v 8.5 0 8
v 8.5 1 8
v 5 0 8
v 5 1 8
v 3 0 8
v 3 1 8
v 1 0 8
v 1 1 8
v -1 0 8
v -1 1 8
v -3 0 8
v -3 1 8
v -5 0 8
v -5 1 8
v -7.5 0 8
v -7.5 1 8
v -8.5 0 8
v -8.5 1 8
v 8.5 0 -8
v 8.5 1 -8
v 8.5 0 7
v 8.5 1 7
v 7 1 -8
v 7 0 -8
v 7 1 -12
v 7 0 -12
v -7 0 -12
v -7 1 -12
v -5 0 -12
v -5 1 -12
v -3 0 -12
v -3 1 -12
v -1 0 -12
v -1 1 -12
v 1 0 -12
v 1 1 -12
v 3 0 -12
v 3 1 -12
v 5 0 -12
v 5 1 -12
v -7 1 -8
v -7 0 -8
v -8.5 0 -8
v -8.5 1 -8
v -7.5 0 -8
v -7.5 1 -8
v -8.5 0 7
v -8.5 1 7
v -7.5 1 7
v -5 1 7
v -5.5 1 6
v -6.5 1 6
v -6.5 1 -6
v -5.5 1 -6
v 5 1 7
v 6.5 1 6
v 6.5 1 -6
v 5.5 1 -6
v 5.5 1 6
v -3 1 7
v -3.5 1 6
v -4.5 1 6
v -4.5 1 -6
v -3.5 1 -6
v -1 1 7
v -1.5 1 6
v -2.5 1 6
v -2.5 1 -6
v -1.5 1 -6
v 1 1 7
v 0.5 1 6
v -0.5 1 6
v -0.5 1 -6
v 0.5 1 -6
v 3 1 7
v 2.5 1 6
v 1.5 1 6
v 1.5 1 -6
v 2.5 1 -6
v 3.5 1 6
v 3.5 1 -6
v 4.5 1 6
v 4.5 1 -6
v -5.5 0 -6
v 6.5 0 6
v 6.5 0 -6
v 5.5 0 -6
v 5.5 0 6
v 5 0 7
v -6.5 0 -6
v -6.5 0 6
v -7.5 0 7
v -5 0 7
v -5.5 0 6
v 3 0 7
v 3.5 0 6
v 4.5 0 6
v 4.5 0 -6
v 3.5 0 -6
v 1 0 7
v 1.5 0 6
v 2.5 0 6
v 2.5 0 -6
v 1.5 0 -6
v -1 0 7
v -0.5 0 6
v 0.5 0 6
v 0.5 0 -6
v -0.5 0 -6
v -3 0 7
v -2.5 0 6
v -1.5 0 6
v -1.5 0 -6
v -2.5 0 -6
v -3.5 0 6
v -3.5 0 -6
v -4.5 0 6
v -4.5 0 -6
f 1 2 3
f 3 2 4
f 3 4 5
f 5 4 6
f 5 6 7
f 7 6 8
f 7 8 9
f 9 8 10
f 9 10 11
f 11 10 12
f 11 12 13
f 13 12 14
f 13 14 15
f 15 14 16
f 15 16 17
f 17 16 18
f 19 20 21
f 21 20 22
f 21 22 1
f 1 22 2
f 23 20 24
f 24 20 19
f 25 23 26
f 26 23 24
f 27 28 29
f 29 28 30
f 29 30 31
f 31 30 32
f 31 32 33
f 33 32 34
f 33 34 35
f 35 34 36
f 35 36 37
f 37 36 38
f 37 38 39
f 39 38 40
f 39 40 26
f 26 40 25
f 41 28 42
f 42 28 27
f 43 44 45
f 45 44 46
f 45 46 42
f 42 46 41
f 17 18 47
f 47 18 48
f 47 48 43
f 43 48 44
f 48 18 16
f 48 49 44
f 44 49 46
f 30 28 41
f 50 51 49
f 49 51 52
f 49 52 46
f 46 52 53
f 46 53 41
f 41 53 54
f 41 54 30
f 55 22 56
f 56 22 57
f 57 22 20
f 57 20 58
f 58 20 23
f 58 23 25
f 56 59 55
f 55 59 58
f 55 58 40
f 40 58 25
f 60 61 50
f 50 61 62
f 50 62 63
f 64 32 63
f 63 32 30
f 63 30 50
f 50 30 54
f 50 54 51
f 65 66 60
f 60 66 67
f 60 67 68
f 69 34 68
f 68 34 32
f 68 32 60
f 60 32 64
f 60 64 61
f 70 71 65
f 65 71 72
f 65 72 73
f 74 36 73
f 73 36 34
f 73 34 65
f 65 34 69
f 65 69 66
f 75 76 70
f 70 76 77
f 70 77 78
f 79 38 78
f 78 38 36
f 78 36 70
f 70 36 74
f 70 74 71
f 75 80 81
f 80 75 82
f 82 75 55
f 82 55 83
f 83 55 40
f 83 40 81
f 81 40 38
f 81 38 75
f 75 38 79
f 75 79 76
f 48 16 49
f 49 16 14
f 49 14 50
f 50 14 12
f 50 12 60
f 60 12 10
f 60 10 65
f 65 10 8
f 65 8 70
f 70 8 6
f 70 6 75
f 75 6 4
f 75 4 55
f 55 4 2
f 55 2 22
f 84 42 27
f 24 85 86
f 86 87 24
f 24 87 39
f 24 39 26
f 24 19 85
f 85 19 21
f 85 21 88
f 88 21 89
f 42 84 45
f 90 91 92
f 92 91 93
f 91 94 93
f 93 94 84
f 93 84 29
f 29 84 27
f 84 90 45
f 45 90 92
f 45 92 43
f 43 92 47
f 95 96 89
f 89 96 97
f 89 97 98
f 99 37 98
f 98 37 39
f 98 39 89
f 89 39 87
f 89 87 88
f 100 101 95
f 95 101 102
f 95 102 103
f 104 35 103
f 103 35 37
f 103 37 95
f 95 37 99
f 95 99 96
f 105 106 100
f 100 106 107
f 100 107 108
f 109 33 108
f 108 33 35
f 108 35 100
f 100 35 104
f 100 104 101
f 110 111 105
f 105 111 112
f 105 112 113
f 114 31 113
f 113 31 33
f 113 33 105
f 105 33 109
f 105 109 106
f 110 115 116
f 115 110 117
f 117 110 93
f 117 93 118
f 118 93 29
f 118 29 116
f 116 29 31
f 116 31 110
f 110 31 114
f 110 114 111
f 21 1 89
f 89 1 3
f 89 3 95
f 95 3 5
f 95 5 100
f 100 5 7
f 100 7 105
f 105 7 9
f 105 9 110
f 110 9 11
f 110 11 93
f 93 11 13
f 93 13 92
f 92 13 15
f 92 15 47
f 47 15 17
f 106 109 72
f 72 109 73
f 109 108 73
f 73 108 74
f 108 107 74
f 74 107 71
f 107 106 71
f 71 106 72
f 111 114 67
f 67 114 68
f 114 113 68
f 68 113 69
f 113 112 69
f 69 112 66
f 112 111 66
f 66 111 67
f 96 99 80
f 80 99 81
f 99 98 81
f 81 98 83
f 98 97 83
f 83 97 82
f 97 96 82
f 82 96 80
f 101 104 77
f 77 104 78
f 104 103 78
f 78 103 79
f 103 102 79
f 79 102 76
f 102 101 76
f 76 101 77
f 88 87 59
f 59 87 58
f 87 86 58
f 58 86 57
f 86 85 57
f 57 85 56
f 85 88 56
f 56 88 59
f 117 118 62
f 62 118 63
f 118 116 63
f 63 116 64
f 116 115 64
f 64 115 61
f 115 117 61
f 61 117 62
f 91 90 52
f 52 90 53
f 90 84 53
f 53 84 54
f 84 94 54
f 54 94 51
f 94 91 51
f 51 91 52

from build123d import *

# Parameters (mm, degrees)
EXTRUDE_1_DEPTH     = 1
SKETCH_5_W          = 1
SKETCH_5_H          = 12
CUT_EXTRUDE_2_DEPTH = 2


with BuildPart() as part:
    # 草图1 → 凸台-拉伸1 (new body)
    with BuildSketch(Plane(origin=(0, 0, 0), x_dir=(1, 0, 0), z_dir=(0, 1, 0))):
        Polygon((-8.5, -8), (-8.5, 8), (-7, 8), (-7, 12), (7, 12), (7, 8), (8.5, 8), (8.5, -8), align=None)
    extrude(amount=EXTRUDE_1_DEPTH)

    # 草图5 → 切除-拉伸2 (cut, through all)
    with BuildSketch(Plane(origin=(0, 1, 0), x_dir=(1, 0, 0), z_dir=(0, 1, 0))):
        Rectangle(SKETCH_5_W, SKETCH_5_H)
        with Locations((2, 0)):
            Rectangle(SKETCH_5_W, SKETCH_5_H)
        with Locations((6, 0)):
            Rectangle(SKETCH_5_W, SKETCH_5_H)
        with Locations((4, 0)):
            Rectangle(SKETCH_5_W, SKETCH_5_H)
        with Locations((-2, 0)):
            Rectangle(SKETCH_5_W, SKETCH_5_H)
        with Locations((-4, 0)):
            Rectangle(SKETCH_5_W, SKETCH_5_H)
        with Locations((-6, 0)):
            Rectangle(SKETCH_5_W, SKETCH_5_H)
    extrude(amount=-CUT_EXTRUDE_2_DEPTH, mode=Mode.SUBTRACT)


solid = part.part
